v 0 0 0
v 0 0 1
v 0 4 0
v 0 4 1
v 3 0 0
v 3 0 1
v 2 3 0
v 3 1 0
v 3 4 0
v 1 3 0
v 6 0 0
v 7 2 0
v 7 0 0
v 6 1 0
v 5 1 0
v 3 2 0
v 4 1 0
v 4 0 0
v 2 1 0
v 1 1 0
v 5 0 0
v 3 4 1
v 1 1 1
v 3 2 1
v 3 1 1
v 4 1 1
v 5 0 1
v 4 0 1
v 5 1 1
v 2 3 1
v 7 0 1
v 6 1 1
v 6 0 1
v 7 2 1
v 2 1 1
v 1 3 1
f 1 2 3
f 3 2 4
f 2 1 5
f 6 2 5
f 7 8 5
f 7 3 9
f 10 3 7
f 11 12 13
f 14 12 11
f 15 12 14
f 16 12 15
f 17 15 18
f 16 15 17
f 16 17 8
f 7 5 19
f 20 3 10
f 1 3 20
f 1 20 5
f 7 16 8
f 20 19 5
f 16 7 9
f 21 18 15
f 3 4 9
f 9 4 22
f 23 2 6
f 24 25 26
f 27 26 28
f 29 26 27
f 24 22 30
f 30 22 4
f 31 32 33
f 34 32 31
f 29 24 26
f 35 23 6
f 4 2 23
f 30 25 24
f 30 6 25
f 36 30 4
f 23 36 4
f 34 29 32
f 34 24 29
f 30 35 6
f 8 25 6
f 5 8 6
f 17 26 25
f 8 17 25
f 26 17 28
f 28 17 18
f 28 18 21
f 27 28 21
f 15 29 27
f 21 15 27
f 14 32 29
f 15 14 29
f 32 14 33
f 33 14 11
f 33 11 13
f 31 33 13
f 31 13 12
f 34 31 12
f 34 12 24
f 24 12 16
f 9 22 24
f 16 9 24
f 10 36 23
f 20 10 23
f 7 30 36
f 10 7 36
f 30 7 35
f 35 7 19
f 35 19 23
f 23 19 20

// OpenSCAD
difference() {
	cube([7, 4, 1]);

	translate([1, 1, -1]) cube([1, 2, 3]);
	translate([3, 2, -1]) cube([5, 3, 3]);
	translate([3, 0, -1]) cube([1, 1, 3]);
	translate([5, 0, -1]) cube([1, 1, 3]);
}
